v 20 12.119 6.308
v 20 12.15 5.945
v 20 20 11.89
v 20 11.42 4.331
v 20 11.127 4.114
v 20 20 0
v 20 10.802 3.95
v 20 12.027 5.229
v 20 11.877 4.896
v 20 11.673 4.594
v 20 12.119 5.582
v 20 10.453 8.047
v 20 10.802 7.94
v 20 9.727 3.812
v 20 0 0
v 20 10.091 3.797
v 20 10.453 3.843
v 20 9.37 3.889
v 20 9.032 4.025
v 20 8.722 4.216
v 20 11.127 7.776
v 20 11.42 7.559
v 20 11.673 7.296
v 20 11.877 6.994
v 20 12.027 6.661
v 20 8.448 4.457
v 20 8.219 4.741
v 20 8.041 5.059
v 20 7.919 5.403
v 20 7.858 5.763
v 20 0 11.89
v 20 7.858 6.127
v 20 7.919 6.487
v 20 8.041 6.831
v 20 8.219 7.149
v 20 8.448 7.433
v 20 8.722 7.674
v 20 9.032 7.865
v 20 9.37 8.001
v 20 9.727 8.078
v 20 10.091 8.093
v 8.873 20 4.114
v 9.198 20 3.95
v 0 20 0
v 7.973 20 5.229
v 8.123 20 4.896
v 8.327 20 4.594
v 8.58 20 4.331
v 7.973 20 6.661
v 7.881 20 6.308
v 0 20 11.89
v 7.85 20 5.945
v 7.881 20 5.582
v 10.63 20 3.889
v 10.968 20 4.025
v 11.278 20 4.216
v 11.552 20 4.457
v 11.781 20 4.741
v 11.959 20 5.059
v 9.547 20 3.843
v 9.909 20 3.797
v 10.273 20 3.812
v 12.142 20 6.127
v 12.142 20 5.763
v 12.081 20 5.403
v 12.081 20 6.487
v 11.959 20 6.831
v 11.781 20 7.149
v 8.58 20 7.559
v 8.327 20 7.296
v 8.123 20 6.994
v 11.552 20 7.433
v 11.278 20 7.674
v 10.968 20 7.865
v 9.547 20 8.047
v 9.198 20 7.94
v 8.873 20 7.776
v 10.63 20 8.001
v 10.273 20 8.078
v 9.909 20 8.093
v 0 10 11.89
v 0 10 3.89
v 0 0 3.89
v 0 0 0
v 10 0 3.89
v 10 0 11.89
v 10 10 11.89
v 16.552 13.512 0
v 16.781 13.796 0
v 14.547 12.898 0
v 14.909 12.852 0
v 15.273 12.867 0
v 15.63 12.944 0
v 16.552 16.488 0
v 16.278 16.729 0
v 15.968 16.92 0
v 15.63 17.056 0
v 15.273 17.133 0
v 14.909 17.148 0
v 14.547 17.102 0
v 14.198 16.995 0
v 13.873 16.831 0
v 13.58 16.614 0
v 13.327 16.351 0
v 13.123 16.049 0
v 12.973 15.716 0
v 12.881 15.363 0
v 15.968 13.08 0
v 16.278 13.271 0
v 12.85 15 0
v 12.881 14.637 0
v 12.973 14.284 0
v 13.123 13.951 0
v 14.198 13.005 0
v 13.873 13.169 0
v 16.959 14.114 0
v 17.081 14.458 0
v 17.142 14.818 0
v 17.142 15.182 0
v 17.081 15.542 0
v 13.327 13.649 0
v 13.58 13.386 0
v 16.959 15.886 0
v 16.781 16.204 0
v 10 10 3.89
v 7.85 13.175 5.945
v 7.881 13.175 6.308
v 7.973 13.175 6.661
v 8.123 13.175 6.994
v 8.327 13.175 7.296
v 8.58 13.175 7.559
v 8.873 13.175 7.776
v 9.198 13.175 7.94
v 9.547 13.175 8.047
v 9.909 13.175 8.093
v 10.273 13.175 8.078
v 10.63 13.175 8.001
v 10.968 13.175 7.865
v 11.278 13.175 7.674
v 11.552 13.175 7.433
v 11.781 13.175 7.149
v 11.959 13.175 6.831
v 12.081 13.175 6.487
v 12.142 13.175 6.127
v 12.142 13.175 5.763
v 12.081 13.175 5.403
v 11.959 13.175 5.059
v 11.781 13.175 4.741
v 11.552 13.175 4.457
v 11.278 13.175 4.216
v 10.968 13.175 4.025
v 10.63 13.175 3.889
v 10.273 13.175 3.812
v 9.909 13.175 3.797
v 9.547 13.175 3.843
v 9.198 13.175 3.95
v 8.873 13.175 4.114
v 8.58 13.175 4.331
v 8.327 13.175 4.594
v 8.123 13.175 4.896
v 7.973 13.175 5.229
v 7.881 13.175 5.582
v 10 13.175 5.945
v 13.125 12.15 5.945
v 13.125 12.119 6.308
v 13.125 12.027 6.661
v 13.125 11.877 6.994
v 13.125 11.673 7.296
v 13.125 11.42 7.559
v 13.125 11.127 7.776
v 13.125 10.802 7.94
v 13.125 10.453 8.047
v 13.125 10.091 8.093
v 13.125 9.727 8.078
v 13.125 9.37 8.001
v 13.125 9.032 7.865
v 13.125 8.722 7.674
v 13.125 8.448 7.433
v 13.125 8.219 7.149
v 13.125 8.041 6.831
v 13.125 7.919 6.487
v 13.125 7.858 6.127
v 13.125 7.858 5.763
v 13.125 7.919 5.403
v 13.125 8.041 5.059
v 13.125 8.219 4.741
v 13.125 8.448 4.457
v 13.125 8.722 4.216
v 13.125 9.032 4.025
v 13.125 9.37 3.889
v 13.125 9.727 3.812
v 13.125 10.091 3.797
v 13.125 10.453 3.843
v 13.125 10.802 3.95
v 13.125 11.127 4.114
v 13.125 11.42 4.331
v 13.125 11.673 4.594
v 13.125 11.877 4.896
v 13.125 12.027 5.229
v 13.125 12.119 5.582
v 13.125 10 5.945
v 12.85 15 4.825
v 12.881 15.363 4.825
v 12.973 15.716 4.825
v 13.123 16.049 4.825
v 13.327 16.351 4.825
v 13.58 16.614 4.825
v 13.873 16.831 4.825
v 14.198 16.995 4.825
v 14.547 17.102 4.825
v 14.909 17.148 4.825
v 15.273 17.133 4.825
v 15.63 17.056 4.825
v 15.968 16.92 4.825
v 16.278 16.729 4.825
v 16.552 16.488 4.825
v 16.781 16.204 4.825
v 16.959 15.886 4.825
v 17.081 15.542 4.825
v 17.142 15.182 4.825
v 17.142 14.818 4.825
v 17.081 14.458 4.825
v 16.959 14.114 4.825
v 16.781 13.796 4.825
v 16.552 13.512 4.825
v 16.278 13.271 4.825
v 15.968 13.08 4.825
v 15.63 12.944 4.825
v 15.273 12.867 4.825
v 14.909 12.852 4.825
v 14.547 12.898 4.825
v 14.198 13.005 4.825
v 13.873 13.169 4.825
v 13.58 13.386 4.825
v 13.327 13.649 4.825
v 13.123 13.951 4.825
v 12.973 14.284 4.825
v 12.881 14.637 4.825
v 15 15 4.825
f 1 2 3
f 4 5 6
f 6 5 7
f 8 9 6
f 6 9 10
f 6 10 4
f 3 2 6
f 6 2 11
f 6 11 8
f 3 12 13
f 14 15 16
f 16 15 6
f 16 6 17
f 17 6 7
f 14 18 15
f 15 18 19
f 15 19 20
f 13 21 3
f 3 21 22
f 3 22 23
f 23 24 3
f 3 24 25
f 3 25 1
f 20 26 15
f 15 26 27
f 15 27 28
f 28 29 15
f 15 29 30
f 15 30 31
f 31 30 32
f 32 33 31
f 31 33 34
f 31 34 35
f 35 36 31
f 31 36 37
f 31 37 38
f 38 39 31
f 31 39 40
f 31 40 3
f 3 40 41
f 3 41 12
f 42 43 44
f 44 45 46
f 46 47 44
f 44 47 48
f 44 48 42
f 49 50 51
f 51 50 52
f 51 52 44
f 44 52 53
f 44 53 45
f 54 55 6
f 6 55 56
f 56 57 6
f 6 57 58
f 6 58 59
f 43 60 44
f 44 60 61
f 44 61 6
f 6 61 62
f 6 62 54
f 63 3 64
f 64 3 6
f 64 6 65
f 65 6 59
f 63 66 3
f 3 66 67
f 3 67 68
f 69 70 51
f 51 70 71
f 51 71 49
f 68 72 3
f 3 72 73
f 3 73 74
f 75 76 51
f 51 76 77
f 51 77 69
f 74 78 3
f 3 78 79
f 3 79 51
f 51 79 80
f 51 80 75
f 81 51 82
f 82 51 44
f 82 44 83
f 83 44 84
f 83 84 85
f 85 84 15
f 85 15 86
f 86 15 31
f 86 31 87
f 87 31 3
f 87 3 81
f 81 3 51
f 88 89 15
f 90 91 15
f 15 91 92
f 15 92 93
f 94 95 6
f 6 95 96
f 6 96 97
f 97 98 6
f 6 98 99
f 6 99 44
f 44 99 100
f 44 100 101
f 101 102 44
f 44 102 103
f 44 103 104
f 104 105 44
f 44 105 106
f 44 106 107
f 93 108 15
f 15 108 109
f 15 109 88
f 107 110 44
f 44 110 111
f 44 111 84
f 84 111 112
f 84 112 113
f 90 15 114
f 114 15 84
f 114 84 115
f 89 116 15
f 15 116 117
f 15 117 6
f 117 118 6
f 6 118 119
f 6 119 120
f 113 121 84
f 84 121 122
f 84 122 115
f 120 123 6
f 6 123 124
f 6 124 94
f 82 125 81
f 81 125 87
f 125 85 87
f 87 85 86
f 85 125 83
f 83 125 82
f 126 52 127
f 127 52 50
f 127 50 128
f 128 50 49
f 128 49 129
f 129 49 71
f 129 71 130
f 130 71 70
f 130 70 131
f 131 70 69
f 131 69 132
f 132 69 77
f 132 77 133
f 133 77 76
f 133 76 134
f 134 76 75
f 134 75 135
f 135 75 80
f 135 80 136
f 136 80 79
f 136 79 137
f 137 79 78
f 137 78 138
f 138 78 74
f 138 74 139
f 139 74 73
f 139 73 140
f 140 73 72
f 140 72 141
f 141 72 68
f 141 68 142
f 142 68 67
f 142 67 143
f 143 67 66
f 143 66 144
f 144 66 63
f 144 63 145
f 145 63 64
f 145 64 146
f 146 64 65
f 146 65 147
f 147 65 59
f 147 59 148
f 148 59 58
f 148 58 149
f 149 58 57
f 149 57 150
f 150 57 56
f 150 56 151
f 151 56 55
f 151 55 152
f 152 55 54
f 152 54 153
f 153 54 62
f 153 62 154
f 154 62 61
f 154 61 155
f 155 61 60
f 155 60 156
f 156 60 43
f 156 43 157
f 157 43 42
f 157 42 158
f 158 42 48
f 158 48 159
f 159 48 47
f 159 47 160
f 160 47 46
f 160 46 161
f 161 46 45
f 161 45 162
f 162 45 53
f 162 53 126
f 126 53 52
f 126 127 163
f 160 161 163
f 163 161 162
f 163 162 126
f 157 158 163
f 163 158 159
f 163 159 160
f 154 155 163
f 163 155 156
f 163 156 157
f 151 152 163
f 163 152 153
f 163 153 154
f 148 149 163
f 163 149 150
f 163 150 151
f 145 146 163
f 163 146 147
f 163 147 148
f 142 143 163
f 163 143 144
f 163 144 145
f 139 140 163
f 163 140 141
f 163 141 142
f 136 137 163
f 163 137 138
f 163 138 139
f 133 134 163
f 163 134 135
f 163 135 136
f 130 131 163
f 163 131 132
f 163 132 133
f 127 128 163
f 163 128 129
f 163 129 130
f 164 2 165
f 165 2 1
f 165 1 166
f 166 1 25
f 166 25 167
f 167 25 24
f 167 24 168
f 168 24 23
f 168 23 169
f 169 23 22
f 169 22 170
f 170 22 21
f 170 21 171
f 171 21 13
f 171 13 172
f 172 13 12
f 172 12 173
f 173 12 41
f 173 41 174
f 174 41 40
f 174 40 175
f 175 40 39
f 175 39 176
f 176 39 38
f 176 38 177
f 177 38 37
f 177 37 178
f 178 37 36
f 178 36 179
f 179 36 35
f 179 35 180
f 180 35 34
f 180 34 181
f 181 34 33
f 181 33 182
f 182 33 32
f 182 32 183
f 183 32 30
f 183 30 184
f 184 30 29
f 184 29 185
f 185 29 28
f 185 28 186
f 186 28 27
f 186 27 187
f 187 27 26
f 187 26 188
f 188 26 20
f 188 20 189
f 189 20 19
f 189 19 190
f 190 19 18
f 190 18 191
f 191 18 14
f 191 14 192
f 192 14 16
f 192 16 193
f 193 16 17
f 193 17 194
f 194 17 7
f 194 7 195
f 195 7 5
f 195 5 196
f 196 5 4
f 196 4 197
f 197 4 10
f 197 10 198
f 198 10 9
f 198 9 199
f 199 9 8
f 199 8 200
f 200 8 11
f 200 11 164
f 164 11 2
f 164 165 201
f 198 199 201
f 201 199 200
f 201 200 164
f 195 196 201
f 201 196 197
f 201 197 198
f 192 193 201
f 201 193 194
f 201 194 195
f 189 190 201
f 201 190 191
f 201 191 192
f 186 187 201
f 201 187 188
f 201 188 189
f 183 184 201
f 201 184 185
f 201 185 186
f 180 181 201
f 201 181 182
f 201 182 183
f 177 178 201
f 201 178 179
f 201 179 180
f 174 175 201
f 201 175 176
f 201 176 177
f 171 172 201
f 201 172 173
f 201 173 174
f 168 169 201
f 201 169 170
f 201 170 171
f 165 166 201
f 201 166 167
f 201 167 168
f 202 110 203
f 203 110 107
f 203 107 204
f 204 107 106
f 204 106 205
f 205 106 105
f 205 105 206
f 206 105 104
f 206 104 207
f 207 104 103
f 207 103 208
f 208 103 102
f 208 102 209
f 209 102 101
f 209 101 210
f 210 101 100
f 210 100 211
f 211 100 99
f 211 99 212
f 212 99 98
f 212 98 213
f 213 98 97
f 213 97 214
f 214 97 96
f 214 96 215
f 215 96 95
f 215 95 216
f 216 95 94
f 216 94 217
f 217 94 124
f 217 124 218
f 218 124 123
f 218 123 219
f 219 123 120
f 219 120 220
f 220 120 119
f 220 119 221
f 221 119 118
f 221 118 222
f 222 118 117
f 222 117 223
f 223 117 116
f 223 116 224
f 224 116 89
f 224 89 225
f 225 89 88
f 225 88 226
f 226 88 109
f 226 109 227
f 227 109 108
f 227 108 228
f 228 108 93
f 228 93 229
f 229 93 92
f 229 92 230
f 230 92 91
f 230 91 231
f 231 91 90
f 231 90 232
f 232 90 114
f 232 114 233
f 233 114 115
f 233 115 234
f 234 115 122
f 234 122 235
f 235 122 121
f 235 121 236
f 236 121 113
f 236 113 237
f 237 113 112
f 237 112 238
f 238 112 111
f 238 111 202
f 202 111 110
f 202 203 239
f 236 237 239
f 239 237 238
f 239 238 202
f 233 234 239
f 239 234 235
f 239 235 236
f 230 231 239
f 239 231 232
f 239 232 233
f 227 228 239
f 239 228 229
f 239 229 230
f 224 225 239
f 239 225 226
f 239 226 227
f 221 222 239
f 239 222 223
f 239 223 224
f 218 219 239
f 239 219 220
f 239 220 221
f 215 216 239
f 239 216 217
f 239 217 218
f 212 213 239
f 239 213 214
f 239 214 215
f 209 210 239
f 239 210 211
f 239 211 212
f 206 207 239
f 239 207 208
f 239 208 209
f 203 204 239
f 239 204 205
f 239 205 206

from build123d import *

# Parameters (mm, degrees)
SKETCH1_W           = 20
SKETCH1_H           = 20
BOSS_EXTRUDE1_DEPTH = 11.89
SKETCH2_W           = 10
SKETCH2_H           = 10
CUT_EXTRUDE1_DEPTH  = 8
SKETCH101_R         = 2.15
CUT_EXTRUDE92_DEPTH = 6.825
SKETCH100_R         = 2.15
CUT_EXTRUDE93_DEPTH = 6.875
SKETCH99_R          = 2.15
CUT_EXTRUDE94_DEPTH = 4.825


with BuildPart() as part:
    # Sketch1 → Boss-Extrude1 (new body)
    with BuildSketch(Plane.XY):
        with Locations((10, 10)):
            Rectangle(SKETCH1_W, SKETCH1_H)
    extrude(amount=BOSS_EXTRUDE1_DEPTH)

    # Sketch2 → Cut-Extrude1 (cut)
    with BuildSketch(Plane.XY.offset(11.89)):
        with Locations((5, 5)):
            Rectangle(SKETCH2_W, SKETCH2_H)
    extrude(amount=-CUT_EXTRUDE1_DEPTH, mode=Mode.SUBTRACT)

    # Sketch101 → Cut-Extrude92 (cut)
    with BuildSketch(Plane(origin=(0, 20, 0), x_dir=(1, 0, 0), z_dir=(0, 1, 0))):
        with Locations((10, -5.945)):
            Circle(SKETCH101_R)
    extrude(amount=-CUT_EXTRUDE92_DEPTH, mode=Mode.SUBTRACT)

    # Sketch100 → Cut-Extrude93 (cut)
    with BuildSketch(Plane(origin=(20, 0, 0), x_dir=(0, 0, -1), z_dir=(1, 0, 0))):
        with Locations((-5.945, 10)):
            Circle(SKETCH100_R)
    extrude(amount=-CUT_EXTRUDE93_DEPTH, mode=Mode.SUBTRACT)

    # Sketch99 → Cut-Extrude94 (cut)
    with BuildSketch(Plane(origin=(0, 0, 0), x_dir=(-1, 0, 0), z_dir=(0, 0, -1))):
        with Locations((-15, 15)):
            Circle(SKETCH99_R)
    extrude(amount=-CUT_EXTRUDE94_DEPTH, mode=Mode.SUBTRACT)


solid = part.part
